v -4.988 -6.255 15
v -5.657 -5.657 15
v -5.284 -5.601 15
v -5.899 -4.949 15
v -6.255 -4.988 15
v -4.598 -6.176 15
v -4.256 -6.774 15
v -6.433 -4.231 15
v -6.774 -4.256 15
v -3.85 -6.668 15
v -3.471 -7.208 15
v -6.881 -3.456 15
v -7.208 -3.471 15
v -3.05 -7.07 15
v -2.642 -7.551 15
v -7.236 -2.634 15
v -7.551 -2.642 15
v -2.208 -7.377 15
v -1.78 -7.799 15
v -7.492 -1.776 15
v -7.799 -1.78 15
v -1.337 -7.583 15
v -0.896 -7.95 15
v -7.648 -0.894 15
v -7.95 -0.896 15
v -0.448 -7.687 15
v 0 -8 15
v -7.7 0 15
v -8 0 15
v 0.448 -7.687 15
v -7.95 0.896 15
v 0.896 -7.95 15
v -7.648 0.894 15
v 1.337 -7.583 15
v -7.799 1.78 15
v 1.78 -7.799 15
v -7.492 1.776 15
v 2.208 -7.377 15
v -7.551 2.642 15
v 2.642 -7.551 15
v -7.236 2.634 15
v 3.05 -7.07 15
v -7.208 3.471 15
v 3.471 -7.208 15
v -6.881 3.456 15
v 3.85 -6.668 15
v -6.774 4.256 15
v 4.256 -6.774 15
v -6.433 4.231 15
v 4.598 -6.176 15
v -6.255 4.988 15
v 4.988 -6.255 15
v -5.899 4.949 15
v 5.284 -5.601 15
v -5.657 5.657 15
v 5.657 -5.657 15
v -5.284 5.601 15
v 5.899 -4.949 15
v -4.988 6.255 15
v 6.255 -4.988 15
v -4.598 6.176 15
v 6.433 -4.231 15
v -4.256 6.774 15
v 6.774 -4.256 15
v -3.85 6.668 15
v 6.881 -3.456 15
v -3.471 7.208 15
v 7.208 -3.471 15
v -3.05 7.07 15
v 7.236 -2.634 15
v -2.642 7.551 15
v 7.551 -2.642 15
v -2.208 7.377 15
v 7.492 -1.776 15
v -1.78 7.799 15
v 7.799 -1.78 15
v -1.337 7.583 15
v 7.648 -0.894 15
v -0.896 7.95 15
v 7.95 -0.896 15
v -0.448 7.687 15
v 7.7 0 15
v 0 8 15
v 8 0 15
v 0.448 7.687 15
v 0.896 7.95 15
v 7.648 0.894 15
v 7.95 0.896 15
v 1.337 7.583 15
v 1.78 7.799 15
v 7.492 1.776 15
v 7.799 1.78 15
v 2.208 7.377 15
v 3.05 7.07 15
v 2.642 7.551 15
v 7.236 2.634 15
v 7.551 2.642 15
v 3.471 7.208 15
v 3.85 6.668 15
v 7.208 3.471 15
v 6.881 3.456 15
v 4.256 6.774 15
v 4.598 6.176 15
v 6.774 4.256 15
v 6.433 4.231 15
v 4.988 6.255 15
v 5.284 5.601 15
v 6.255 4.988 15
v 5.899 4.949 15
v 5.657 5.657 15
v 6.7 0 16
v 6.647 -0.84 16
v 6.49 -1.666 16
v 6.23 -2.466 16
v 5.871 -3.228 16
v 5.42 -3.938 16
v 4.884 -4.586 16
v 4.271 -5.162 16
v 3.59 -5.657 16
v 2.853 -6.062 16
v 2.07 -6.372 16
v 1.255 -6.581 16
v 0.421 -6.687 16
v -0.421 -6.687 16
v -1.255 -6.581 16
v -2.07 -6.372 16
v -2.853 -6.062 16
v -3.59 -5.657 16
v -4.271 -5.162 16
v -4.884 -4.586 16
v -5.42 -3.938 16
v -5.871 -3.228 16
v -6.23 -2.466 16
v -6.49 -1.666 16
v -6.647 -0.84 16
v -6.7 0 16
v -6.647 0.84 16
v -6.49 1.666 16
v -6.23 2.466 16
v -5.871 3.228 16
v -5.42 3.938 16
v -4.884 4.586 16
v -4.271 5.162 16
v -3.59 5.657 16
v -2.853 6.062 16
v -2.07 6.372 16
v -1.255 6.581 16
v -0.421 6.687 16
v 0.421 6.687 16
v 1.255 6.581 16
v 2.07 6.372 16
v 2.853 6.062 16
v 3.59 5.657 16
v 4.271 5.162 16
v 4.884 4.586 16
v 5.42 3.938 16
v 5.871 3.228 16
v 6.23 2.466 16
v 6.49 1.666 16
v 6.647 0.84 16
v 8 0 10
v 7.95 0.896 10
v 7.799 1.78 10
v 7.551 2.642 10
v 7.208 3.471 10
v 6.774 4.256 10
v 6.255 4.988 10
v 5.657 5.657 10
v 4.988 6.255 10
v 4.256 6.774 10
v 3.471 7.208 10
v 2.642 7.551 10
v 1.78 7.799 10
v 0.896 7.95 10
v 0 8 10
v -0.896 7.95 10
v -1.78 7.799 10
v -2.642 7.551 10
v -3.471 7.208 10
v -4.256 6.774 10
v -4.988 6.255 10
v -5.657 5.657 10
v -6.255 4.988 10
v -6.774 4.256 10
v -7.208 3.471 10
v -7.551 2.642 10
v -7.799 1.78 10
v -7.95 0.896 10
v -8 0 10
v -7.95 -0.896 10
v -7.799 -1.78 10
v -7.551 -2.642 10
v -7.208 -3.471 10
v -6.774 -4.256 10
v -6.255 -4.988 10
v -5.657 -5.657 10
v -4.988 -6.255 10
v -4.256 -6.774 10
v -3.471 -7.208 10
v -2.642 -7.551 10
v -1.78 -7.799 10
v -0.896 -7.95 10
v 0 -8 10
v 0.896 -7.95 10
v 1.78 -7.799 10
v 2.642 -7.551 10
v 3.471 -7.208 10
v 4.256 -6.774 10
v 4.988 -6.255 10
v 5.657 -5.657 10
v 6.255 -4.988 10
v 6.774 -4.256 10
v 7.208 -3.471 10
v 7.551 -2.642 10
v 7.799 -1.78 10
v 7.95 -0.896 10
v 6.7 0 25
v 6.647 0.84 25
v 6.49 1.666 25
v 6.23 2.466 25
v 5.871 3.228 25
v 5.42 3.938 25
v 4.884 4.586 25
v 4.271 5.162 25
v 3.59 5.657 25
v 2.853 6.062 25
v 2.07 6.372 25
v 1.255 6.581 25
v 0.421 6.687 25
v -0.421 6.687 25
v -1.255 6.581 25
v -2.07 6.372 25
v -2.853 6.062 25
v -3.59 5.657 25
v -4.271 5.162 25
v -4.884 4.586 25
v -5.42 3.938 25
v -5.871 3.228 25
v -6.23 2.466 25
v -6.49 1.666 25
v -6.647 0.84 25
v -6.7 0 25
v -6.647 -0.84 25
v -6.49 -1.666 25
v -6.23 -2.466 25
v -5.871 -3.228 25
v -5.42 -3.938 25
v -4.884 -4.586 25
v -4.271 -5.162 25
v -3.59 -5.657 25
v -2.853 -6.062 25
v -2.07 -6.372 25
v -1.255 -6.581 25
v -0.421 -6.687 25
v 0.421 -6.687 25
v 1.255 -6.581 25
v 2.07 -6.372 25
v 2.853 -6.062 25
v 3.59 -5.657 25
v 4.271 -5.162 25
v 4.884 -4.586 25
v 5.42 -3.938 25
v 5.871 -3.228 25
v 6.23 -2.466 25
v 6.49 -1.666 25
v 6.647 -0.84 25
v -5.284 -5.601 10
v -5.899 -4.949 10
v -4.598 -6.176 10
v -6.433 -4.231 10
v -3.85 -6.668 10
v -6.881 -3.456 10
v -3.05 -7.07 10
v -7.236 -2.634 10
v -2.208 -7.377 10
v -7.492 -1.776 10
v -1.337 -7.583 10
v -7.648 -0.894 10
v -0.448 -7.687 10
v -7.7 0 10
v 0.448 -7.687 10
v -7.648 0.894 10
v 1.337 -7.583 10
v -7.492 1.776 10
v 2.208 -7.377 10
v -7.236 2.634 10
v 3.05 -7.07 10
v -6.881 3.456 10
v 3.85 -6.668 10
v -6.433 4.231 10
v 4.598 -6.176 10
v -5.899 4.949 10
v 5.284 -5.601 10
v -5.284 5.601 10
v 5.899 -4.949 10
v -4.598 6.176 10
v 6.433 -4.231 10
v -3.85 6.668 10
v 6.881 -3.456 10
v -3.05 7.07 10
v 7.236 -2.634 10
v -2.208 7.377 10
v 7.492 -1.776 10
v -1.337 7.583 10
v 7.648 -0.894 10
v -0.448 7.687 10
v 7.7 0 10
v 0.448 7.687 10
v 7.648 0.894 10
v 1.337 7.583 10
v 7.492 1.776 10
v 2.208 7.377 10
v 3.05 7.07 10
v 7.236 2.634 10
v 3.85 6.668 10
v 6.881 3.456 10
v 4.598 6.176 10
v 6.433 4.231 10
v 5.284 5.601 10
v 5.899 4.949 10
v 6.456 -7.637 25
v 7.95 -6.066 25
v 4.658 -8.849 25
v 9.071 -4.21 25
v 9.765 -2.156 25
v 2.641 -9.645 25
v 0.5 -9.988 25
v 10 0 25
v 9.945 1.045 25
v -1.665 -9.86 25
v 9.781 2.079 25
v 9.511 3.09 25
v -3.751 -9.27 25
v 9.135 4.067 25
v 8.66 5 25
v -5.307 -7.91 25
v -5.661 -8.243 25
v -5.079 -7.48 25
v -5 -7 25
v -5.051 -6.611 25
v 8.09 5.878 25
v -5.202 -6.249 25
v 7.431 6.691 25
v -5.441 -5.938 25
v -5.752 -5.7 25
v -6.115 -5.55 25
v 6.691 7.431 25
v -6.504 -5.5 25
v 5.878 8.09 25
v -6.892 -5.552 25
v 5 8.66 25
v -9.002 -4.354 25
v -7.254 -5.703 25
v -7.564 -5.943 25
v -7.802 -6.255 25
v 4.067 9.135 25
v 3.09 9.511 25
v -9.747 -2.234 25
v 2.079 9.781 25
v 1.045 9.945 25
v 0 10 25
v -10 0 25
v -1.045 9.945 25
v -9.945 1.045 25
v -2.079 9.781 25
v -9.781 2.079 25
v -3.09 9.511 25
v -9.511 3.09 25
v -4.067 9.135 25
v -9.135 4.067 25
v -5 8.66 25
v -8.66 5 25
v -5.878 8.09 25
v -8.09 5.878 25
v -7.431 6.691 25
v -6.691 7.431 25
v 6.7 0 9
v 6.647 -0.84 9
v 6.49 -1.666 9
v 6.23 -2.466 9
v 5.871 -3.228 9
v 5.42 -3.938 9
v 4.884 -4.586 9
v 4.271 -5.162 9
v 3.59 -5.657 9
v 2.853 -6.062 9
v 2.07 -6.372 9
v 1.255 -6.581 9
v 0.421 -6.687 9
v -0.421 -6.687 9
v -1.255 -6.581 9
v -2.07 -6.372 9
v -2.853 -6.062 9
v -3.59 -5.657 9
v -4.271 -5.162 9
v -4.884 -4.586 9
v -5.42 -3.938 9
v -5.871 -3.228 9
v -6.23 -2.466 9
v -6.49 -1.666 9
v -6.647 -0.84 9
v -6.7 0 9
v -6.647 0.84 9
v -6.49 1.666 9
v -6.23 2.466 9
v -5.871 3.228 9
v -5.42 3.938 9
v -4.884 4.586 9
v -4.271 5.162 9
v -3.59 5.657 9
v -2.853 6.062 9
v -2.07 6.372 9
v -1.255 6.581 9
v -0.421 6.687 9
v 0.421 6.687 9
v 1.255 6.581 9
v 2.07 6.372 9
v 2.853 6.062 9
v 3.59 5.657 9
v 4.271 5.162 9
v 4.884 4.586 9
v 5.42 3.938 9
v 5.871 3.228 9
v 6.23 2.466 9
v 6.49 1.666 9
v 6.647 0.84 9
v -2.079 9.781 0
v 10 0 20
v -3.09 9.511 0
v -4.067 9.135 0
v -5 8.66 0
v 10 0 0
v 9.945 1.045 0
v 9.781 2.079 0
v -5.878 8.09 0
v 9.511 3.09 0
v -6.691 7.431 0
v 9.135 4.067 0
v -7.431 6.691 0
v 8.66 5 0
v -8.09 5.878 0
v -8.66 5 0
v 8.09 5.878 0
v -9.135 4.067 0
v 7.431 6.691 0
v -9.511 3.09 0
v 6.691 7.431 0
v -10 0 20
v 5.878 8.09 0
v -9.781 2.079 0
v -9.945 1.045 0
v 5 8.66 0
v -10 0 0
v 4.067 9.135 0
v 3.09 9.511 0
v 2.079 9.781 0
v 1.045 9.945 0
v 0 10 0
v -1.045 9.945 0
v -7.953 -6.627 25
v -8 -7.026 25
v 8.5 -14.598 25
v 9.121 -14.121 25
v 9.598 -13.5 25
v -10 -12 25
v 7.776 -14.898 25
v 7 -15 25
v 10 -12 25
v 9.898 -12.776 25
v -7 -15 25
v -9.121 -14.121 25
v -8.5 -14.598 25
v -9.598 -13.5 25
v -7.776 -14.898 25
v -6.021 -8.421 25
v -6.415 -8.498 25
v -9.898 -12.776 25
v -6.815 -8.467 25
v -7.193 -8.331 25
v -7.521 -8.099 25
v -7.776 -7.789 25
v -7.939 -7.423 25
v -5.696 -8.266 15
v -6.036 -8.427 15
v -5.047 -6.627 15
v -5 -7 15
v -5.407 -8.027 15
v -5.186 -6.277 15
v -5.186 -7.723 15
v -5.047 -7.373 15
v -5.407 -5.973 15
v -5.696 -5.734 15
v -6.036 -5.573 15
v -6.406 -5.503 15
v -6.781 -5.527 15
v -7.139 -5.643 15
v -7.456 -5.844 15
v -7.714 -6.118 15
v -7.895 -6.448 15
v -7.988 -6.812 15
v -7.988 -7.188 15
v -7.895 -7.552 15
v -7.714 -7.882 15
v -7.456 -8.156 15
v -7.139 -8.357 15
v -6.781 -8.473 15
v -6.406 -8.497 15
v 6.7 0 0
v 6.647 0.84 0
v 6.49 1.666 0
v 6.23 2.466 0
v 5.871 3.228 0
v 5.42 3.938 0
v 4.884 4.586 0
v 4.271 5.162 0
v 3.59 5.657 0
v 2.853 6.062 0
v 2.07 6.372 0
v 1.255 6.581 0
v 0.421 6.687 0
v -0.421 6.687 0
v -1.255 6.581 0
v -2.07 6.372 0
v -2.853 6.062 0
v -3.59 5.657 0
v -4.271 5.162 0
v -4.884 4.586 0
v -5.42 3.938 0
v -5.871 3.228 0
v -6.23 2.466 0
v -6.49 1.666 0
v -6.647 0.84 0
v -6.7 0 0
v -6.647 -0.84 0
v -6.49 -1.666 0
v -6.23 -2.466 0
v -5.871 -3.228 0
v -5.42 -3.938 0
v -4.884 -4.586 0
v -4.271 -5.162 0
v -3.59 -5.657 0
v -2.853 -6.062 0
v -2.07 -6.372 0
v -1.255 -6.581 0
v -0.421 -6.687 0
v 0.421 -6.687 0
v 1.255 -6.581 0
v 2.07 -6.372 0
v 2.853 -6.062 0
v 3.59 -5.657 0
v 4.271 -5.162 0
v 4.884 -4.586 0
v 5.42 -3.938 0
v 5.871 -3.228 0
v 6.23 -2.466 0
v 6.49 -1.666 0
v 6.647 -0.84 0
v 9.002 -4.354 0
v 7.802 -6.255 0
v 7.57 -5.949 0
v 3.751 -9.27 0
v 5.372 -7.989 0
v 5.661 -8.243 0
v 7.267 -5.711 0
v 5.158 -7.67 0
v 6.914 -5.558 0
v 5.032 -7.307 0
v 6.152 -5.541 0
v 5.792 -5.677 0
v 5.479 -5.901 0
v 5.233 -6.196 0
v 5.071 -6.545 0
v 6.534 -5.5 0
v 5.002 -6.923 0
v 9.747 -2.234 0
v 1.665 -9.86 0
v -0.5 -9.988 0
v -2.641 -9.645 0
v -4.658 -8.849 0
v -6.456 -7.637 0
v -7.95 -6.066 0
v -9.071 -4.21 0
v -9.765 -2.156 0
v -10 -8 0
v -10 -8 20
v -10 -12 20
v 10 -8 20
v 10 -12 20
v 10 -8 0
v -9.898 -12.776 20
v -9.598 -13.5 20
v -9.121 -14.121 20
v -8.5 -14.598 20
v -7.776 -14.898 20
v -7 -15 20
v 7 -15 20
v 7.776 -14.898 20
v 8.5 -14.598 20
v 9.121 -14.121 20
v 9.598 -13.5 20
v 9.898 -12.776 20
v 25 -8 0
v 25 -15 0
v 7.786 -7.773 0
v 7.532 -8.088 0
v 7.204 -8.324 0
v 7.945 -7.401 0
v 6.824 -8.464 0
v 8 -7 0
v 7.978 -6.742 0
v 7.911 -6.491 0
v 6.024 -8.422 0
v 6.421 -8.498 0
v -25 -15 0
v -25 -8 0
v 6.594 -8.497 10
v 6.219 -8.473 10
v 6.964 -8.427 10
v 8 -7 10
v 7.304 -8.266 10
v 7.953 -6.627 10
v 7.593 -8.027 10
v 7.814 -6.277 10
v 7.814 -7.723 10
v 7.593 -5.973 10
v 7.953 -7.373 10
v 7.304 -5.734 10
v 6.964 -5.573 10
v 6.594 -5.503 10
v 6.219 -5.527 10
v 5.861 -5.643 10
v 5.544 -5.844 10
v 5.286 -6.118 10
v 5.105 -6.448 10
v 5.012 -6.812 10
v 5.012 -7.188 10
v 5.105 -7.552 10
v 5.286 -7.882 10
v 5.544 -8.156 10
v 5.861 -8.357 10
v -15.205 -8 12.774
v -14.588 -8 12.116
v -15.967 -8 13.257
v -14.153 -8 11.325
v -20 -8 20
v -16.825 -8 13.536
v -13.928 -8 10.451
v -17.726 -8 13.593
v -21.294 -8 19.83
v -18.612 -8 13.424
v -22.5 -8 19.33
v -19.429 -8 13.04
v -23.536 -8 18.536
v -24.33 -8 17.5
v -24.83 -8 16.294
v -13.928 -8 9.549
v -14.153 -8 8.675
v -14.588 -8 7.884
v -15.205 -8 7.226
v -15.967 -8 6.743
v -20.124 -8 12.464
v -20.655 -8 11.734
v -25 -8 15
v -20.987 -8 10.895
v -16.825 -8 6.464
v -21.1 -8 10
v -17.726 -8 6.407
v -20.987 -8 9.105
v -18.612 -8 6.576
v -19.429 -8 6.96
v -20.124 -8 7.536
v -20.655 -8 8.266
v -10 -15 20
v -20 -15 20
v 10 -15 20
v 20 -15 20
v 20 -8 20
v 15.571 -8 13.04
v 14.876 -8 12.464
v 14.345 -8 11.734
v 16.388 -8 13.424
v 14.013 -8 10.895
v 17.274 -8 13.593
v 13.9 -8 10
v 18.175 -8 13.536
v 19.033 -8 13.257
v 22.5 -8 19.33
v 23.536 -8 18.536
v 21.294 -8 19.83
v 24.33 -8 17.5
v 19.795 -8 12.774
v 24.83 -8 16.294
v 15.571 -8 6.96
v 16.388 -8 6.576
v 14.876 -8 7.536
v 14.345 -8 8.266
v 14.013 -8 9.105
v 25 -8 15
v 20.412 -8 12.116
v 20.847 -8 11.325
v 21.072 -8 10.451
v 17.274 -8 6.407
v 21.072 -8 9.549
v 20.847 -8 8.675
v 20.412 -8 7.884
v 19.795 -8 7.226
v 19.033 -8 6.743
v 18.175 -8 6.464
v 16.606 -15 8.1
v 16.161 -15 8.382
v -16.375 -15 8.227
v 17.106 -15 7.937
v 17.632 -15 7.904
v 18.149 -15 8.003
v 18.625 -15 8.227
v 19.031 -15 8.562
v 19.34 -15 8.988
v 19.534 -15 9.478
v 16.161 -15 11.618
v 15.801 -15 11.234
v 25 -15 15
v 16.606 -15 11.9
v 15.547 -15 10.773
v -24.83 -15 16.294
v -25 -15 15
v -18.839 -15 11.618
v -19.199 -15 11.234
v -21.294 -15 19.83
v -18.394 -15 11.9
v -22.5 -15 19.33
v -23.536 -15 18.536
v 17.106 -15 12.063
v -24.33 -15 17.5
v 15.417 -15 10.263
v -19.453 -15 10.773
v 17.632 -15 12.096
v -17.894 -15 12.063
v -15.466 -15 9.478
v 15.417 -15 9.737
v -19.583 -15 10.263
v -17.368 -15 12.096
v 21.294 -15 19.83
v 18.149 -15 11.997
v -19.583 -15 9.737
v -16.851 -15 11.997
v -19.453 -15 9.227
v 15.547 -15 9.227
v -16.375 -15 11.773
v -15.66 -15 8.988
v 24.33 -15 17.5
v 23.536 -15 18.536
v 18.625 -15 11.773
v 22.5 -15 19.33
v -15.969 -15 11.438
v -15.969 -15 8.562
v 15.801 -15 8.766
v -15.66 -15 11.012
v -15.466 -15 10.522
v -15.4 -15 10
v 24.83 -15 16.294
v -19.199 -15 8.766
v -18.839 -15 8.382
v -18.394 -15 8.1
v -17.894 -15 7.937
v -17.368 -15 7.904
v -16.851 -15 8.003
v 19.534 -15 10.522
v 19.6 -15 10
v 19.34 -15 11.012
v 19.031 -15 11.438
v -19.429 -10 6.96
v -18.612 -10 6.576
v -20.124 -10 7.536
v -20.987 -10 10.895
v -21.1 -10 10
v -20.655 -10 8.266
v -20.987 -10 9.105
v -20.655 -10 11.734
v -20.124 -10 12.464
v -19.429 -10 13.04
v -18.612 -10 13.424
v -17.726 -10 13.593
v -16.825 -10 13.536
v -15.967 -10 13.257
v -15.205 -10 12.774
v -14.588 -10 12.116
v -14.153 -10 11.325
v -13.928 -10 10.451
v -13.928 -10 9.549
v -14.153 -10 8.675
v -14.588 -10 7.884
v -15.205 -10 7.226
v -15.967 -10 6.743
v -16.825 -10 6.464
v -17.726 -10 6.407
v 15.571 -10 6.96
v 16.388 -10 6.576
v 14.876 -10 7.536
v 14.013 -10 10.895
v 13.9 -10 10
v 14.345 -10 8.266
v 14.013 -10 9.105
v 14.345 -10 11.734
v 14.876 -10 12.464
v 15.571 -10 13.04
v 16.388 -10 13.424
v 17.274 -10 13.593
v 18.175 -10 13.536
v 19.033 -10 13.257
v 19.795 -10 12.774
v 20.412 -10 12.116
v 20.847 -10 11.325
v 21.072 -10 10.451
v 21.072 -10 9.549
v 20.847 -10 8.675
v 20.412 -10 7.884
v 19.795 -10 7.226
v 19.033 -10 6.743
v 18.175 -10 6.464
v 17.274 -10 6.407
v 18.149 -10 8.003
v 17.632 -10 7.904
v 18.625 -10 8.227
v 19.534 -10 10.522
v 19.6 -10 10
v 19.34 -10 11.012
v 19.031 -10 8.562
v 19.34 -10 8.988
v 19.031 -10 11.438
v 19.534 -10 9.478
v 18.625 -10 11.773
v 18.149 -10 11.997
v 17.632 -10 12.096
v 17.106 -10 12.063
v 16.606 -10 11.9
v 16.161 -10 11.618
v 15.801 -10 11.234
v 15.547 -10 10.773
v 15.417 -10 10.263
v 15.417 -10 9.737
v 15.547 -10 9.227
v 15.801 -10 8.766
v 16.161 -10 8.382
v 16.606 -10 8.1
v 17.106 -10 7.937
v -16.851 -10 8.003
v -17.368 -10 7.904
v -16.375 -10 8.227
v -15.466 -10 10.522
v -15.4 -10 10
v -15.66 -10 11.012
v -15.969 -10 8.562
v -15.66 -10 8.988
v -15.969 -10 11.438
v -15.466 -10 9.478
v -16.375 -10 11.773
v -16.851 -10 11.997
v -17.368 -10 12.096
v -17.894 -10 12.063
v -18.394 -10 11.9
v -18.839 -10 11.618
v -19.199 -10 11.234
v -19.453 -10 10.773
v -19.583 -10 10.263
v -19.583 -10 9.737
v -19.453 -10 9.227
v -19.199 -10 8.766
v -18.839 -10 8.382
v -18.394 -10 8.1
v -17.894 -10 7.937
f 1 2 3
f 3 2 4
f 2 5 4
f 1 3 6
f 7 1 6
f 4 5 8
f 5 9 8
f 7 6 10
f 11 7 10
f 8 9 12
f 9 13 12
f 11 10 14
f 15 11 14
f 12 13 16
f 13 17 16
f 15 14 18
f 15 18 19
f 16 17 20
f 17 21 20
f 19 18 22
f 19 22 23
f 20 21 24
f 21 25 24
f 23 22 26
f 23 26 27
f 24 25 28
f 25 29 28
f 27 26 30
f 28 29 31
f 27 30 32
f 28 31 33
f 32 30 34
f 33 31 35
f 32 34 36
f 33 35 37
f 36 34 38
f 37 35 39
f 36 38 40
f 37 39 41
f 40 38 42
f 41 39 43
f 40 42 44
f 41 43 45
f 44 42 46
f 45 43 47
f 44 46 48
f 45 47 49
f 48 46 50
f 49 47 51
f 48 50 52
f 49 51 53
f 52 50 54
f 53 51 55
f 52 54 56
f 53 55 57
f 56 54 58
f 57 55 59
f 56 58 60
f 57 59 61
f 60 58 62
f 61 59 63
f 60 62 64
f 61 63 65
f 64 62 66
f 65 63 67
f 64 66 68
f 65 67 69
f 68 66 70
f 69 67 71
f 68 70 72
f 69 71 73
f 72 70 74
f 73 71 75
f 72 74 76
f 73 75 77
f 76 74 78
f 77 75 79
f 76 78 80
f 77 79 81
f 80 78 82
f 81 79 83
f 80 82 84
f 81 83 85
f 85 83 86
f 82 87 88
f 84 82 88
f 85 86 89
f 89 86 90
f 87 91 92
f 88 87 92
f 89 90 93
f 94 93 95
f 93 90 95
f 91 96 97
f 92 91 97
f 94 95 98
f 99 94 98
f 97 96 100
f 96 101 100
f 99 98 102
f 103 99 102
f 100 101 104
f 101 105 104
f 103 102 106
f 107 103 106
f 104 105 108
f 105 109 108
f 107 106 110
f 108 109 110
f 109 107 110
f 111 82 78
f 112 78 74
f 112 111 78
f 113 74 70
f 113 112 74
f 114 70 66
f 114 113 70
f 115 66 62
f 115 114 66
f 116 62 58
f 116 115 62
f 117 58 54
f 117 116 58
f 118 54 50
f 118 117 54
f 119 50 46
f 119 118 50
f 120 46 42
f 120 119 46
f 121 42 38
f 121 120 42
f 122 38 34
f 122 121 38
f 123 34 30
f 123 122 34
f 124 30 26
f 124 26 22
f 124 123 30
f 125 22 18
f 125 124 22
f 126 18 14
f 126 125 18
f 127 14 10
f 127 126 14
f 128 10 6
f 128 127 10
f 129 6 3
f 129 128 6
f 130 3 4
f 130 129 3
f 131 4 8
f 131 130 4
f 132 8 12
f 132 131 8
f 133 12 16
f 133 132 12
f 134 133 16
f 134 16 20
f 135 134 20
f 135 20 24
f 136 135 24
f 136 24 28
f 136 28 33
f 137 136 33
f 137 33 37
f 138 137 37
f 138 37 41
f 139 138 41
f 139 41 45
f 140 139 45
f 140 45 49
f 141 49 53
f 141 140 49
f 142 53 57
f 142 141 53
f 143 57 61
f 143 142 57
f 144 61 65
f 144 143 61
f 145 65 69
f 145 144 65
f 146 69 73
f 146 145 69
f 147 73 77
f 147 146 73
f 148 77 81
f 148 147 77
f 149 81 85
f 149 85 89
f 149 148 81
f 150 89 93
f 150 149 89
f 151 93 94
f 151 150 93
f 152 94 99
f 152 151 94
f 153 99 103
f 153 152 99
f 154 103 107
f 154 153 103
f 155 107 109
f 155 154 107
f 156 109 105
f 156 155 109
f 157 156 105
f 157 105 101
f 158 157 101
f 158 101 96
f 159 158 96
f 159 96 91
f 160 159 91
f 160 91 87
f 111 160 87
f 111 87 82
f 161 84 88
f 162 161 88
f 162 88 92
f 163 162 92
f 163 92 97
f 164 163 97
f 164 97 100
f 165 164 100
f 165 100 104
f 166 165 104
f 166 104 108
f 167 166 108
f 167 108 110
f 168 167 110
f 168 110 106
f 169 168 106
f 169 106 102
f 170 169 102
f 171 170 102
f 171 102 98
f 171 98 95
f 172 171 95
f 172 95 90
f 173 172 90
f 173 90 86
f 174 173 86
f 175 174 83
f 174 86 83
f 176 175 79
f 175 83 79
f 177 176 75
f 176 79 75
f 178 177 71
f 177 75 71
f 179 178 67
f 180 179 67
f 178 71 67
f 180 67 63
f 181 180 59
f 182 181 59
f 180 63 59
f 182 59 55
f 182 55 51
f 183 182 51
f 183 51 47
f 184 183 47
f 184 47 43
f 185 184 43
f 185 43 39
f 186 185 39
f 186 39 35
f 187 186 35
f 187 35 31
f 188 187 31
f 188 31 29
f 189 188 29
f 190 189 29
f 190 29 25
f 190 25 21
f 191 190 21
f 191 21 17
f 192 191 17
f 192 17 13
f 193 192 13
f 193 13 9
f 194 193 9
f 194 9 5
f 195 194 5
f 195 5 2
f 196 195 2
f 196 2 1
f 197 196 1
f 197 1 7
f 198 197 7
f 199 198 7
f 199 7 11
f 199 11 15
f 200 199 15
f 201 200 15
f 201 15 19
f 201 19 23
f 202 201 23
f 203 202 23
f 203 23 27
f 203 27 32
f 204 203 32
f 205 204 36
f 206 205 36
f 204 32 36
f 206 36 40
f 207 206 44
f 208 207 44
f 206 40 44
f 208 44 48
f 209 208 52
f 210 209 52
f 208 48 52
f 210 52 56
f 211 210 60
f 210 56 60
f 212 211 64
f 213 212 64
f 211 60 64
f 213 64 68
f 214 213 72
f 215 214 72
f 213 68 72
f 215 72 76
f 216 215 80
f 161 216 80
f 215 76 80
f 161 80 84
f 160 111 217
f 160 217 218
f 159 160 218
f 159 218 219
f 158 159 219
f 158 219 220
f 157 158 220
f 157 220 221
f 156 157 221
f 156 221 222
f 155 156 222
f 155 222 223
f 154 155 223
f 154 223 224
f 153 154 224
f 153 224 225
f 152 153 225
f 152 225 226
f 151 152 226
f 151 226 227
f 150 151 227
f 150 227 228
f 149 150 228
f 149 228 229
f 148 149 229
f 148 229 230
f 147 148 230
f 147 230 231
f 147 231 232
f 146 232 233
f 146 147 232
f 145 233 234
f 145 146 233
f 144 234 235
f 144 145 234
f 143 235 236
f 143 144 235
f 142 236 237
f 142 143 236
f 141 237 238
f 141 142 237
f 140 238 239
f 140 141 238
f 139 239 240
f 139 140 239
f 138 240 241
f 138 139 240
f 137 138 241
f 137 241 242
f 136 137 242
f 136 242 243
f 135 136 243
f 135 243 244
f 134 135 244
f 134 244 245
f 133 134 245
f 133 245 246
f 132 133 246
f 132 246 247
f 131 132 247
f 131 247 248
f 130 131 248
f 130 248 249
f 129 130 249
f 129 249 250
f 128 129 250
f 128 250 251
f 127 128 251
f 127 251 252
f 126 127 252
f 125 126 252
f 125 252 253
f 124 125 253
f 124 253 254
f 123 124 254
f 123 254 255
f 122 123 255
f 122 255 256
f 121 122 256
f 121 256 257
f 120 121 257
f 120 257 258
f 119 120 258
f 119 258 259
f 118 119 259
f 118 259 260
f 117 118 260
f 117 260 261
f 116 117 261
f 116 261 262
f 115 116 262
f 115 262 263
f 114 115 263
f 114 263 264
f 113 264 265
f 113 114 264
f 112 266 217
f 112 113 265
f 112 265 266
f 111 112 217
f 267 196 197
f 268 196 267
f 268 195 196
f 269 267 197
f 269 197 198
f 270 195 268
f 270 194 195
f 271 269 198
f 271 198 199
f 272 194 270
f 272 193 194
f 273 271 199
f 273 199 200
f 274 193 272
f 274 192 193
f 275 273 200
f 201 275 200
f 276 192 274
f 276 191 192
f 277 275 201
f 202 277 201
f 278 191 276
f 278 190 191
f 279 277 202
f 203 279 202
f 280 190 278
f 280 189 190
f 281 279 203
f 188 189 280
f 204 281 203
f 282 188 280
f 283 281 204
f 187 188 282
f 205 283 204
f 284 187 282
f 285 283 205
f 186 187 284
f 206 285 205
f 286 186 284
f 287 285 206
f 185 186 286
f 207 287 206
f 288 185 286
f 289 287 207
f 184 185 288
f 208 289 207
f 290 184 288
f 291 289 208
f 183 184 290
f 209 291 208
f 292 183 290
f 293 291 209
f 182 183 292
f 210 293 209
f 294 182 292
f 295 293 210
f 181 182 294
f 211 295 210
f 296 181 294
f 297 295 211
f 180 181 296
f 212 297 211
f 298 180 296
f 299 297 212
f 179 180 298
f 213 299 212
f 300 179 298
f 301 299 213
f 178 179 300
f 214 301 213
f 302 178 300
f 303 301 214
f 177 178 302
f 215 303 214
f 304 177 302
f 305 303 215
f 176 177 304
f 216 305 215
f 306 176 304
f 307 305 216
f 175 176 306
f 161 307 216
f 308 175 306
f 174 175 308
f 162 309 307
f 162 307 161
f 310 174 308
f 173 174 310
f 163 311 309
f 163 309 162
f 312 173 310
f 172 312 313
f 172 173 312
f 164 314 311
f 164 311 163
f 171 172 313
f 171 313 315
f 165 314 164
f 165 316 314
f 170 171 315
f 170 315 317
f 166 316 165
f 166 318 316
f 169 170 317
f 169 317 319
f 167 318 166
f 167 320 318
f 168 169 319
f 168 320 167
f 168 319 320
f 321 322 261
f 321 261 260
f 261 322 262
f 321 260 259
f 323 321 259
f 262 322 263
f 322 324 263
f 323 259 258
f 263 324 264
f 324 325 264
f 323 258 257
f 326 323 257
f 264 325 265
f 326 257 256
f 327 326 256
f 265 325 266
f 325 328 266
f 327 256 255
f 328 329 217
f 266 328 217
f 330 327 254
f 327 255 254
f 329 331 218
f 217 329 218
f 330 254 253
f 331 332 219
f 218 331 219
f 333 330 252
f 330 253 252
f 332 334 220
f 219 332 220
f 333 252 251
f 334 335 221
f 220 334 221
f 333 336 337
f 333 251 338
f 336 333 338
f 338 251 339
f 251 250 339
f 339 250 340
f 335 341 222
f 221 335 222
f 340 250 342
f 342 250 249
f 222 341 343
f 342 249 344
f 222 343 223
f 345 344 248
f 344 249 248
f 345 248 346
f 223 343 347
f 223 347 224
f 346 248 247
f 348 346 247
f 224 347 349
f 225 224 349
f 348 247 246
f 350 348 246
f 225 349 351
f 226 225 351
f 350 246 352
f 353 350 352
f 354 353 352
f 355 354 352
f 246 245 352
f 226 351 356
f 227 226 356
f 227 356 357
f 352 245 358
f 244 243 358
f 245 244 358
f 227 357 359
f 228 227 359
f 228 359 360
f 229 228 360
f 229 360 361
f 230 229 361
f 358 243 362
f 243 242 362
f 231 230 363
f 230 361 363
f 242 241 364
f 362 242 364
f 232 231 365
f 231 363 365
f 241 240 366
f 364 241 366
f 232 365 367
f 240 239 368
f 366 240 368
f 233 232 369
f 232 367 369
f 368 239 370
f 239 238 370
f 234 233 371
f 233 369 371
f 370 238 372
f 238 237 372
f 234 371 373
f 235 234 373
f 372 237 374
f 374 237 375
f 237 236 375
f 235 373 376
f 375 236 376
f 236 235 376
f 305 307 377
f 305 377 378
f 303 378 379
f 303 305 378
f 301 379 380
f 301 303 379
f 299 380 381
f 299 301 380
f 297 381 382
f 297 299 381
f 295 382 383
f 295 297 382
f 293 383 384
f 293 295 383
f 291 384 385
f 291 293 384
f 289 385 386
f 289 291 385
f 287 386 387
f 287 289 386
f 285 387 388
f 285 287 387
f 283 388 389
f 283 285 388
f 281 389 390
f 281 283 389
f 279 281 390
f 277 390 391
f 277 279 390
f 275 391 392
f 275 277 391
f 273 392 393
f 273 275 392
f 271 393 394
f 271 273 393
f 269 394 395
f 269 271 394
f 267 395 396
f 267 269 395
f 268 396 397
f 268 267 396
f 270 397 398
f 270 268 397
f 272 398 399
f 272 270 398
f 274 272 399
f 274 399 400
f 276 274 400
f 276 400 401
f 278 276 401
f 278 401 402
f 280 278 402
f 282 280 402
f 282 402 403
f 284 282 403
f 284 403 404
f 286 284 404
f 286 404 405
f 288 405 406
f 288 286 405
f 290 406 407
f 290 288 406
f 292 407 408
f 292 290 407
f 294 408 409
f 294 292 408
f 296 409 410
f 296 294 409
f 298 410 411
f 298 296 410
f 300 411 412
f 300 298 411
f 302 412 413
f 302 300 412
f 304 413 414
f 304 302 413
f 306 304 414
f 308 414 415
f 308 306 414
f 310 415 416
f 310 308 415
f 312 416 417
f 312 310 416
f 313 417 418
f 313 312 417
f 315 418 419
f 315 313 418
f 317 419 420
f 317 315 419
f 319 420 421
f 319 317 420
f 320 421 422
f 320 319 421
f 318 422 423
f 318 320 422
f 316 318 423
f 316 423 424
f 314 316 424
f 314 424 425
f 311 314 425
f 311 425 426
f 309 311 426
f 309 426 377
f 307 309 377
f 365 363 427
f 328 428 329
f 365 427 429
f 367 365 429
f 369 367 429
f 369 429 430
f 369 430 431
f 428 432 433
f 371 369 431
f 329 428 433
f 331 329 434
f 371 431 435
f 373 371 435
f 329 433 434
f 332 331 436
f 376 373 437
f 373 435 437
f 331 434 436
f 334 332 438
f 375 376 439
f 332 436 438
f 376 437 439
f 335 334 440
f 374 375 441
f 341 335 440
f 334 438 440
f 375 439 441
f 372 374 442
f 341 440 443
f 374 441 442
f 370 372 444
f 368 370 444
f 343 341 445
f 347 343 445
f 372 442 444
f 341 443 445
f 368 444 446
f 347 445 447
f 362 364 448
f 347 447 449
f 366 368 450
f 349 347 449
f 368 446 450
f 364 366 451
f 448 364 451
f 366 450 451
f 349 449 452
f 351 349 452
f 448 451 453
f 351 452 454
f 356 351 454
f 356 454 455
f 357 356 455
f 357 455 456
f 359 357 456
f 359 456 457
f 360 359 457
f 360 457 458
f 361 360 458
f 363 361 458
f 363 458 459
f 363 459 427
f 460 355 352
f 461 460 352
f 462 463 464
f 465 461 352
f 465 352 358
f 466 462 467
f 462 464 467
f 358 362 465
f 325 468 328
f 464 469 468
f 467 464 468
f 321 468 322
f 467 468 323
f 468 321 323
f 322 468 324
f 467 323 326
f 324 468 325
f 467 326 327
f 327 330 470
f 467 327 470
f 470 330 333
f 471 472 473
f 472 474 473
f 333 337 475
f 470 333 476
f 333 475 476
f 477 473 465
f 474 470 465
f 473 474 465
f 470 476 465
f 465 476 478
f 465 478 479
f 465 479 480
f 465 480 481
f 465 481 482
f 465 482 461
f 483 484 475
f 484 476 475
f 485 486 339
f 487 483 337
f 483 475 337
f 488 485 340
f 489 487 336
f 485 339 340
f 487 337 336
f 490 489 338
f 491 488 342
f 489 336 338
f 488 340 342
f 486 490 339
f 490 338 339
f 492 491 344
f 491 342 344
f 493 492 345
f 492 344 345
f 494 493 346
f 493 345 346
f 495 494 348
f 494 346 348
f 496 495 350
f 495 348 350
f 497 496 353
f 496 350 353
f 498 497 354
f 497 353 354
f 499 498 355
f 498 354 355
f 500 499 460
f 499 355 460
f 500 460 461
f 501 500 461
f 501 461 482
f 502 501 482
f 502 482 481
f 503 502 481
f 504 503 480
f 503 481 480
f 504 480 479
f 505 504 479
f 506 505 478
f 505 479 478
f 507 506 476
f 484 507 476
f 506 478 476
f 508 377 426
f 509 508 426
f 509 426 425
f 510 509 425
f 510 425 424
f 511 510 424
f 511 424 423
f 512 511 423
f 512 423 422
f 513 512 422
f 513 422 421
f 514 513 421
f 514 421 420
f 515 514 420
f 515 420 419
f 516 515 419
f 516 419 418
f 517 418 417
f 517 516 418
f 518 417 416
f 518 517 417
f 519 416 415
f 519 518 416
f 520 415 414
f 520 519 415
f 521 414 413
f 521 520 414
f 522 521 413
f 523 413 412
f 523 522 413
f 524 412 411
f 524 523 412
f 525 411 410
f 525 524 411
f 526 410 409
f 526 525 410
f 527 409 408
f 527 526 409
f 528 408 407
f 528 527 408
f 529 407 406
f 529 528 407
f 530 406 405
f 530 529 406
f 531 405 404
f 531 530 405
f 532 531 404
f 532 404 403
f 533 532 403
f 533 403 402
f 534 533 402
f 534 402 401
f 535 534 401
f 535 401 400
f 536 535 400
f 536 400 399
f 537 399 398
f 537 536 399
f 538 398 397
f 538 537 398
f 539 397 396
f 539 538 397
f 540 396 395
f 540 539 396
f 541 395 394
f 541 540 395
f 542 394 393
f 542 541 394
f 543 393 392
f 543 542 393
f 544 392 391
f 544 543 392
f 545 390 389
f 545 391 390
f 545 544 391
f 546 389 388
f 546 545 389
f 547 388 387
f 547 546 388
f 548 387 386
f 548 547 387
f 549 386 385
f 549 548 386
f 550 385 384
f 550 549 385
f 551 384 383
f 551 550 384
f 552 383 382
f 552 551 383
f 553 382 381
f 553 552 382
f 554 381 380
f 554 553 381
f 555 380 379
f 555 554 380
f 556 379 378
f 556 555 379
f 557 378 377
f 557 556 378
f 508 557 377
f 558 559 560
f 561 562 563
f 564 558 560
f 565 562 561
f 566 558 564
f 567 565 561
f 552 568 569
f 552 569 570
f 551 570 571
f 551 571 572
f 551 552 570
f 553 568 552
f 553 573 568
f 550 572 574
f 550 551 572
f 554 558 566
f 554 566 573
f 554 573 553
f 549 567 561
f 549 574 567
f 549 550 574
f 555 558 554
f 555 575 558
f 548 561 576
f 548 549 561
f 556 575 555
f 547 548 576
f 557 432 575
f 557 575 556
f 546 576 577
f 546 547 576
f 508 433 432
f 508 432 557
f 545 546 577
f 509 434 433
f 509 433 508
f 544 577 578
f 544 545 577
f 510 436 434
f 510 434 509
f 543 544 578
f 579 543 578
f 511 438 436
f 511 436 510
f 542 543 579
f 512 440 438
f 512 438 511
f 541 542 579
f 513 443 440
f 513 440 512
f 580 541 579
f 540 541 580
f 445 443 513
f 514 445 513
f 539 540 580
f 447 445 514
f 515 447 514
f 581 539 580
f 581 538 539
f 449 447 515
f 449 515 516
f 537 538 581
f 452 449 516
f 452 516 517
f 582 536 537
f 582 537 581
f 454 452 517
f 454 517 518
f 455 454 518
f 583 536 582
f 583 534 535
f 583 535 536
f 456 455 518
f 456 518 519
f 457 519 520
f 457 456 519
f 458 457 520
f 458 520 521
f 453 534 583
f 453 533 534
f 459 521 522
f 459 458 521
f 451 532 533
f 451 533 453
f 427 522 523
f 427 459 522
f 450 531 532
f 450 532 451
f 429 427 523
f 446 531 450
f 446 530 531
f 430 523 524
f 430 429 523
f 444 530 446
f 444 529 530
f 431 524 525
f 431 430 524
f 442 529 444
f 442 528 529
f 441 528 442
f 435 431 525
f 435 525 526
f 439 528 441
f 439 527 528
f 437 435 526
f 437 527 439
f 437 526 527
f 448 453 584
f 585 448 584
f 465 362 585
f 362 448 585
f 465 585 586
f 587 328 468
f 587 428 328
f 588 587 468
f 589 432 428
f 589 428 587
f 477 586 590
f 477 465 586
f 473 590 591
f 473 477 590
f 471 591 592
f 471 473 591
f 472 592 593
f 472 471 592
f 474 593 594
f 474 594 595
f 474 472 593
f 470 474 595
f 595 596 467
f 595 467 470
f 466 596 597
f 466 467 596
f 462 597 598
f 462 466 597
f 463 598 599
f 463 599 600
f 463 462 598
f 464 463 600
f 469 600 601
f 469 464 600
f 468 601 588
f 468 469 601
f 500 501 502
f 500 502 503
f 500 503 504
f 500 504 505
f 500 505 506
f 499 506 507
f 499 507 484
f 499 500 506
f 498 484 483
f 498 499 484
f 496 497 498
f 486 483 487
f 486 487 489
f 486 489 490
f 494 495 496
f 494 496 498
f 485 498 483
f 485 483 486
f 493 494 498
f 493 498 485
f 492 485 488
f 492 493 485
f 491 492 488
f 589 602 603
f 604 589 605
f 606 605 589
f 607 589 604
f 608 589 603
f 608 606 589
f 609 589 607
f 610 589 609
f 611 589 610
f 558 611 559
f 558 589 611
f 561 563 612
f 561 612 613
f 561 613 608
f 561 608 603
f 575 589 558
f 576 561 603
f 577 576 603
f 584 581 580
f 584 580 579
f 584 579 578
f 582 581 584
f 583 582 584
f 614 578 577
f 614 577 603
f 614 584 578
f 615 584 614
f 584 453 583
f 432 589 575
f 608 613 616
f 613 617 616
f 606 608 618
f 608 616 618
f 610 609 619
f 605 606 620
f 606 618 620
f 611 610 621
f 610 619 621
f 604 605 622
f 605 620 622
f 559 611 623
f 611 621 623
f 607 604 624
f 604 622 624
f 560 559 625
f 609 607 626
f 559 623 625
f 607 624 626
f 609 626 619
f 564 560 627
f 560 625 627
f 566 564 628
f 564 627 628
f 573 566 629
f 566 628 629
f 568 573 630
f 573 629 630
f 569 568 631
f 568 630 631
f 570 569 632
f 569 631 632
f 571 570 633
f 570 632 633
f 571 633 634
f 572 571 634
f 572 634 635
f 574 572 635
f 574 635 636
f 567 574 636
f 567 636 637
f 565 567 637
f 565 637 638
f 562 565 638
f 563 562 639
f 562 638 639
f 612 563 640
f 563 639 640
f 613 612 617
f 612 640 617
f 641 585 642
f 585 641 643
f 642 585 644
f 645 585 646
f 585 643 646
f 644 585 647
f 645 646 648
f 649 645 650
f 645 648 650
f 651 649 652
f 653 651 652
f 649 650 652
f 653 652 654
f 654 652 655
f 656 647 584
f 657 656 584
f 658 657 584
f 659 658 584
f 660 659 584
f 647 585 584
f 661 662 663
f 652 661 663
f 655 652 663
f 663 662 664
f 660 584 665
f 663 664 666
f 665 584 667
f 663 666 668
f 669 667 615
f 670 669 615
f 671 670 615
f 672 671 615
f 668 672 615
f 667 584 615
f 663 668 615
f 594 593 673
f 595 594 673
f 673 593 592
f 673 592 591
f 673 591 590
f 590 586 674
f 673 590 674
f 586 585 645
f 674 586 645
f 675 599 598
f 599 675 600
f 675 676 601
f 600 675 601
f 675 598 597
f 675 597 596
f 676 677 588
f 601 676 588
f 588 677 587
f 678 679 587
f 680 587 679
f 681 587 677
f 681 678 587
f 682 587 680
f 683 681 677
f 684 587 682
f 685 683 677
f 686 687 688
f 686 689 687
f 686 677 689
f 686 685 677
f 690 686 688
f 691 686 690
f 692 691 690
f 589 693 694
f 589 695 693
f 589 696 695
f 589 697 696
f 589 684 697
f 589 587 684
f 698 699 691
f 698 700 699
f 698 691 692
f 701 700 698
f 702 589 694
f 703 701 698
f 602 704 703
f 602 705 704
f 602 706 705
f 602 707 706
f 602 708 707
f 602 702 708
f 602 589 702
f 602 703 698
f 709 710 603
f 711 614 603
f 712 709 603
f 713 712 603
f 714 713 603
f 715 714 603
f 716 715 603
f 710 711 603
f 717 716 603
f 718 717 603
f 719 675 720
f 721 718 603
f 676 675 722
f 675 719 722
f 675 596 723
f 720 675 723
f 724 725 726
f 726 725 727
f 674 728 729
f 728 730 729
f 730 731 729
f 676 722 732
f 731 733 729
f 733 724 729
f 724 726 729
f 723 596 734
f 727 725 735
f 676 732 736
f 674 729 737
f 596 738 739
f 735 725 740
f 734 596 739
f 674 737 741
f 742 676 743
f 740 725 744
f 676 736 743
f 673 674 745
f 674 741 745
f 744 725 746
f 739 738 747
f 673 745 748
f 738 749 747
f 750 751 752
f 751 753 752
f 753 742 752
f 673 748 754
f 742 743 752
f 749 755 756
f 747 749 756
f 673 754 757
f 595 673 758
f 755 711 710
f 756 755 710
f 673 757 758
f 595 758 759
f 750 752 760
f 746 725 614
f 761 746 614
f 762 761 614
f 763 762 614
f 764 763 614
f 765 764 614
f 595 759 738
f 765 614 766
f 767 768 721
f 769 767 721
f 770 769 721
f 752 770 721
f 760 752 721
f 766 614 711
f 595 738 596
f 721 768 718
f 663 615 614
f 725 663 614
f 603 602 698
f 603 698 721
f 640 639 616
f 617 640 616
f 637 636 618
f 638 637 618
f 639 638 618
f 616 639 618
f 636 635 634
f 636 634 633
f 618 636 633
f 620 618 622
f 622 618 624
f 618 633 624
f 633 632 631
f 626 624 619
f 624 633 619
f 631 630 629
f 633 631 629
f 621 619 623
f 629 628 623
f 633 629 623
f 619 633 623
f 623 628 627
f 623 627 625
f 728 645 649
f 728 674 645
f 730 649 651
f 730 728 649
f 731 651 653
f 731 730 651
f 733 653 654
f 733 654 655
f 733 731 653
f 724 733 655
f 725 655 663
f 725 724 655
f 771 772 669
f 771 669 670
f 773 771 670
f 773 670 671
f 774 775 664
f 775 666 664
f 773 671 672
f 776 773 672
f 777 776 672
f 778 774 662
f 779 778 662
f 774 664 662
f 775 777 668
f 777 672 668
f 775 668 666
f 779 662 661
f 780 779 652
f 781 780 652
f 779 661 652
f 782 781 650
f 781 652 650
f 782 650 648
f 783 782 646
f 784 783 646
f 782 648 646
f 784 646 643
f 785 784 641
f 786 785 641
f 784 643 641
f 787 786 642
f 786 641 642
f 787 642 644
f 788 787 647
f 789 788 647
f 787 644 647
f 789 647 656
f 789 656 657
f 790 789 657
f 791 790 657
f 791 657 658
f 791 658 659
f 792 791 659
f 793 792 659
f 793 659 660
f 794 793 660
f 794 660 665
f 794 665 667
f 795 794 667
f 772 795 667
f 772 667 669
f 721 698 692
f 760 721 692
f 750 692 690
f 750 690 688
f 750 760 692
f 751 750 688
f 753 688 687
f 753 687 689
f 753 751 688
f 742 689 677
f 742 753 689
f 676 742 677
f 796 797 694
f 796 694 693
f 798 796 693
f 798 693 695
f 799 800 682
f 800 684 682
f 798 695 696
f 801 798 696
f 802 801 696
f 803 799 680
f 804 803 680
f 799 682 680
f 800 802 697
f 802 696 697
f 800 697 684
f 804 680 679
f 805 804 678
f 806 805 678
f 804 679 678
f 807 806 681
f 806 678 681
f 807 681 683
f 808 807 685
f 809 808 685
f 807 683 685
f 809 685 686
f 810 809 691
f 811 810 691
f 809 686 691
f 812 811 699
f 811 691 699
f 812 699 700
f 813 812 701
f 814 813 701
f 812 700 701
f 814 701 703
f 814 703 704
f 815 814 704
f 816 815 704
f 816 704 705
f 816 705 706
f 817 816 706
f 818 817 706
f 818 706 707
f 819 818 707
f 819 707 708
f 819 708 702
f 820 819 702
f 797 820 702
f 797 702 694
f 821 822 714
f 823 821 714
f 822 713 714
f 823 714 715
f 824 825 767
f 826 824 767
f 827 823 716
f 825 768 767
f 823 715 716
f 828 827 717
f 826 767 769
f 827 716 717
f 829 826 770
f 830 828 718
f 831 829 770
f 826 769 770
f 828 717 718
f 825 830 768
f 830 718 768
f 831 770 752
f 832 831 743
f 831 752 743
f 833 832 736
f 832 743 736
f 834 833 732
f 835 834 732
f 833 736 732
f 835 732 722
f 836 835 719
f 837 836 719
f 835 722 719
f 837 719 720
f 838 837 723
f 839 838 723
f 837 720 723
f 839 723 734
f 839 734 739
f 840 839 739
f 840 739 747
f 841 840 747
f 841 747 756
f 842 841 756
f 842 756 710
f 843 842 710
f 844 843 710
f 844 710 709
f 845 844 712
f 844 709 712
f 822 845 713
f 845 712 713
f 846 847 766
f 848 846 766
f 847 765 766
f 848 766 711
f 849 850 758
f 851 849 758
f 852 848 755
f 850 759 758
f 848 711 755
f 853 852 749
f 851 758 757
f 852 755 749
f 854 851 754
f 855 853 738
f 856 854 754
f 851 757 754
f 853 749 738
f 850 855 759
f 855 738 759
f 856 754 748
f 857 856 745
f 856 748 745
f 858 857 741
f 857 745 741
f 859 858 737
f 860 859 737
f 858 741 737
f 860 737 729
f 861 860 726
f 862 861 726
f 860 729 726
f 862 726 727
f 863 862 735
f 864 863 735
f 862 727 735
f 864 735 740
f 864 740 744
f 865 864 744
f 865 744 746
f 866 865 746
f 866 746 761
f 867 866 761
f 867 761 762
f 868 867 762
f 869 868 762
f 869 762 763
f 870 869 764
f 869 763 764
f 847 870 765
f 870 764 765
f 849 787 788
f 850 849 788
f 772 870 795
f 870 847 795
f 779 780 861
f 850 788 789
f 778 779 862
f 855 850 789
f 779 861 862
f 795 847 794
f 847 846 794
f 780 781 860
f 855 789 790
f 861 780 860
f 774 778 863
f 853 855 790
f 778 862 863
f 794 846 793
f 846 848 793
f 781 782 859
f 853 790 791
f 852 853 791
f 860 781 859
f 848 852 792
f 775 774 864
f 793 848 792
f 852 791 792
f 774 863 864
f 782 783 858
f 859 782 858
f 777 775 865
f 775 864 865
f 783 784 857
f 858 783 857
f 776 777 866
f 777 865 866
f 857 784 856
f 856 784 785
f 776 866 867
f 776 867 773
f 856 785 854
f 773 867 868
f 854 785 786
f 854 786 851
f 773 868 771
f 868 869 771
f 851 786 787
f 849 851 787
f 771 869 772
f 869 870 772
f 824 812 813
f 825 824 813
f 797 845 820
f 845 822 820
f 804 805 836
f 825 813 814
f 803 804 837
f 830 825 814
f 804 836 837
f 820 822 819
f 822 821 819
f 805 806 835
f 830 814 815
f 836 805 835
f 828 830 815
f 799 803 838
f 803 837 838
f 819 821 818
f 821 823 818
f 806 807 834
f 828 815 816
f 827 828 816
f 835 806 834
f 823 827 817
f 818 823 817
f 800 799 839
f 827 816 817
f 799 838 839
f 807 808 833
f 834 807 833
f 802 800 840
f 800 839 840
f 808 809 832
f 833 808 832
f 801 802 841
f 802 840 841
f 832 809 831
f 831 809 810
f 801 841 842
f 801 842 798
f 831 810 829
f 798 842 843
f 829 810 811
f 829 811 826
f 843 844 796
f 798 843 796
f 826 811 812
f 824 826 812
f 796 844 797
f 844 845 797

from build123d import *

# Parameters (mm, degrees)
CYLINDER002_R     = 1.5
CYLINDER002_DEPTH = 10
CYLINDER001_R     = 1.5
CYLINDER001_DEPTH = 10
PAD002_DEPTH      = 5
PAD001_DEPTH      = 20
SKETCH008_R       = 2.1
POCKET002_DEPTH   = 7
SKETCH009_R       = 3.6
POCKET003_DEPTH   = 2
CYLINDER_R        = 8
CYLINDER_DEPTH    = 5
SKETCH_R          = 10
SKETCH_R_2        = 6.7
PAD_DEPTH         = 25
FILLET_R          = 5
FILLET001_R       = 3
CHAMFER_SIZE      = 1
CHAMFER001_SIZE   = 1


with BuildPart() as zylinder002:
    # Cylinder002 → Cylinder002 (new body)
    with BuildSketch(Plane(origin=(6.5, -7, 0), x_dir=(1, 0, 0), z_dir=(0, 0, 1))):
        Circle(CYLINDER002_R)
    extrude(amount=CYLINDER002_DEPTH)


with BuildPart() as zylinder001:
    # Cylinder001 → Cylinder001 (new body)
    with BuildSketch(Plane(origin=(-6.5, -7, 15), x_dir=(1, 0, 0), z_dir=(0, 0, 1))):
        Circle(CYLINDER001_R)
    extrude(amount=CYLINDER001_DEPTH)


with BuildPart() as pad002:
    # Sketch011 → Pad002 (new body)
    with BuildSketch(Plane.XY.offset(20)):
        with BuildLine():
            Line((-10, 0), (-10, -15))
            Line((10, -15), (-10, -15))
            Line((10, 0), (10, -15))
            ThreePointArc((-10, 0), (0, -10), (10, 0))
        make_face()
    extrude(amount=PAD002_DEPTH)


with BuildPart() as pocket003:
    # Sketch003 → Pad001 (new body)
    with BuildSketch(Plane.XY):
        with BuildLine():
            ThreePointArc((-10, 0), (0, -10), (10, 0))
            Line((10, 0), (10, -8))
            Line((10, -8), (25, -8))
            Line((25, -8), (25, -15))
            Line((-25, -15), (25, -15))
            Line((-25, -8), (-25, -15))
            Line((-10, -8), (-25, -8))
            Line((-10, 0), (-10, -8))
        make_face()
    extrude(amount=PAD001_DEPTH)

    # Sketch008 → Pocket002 (cut)
    with BuildSketch(Plane.XZ.offset(15)):
        with Locations((-17.5, 10)):
            Circle(SKETCH008_R)
        with Locations((17.5, 10)):
            Circle(SKETCH008_R)
    extrude(amount=-POCKET002_DEPTH, mode=Mode.SUBTRACT)

    # Sketch009 → Pocket003 (cut)
    with BuildSketch(Plane(origin=(0, -8, 0), x_dir=(-1, 0, 0), z_dir=(0, 1, 0))):
        with Locations((-17.5, 10)):
            Circle(SKETCH009_R)
        with Locations((17.5, 10)):
            Circle(SKETCH009_R)
    extrude(amount=-POCKET003_DEPTH, mode=Mode.SUBTRACT)


with BuildPart() as zylinder:
    # Cylinder → Cylinder (new body)
    with BuildSketch(Plane.XY.offset(10)):
        Circle(CYLINDER_R)
    extrude(amount=CYLINDER_DEPTH)


with BuildPart() as chamfer001:
    # Sketch → Pad (new body)
    with BuildSketch(Plane.XY):
        Circle(SKETCH_R)
        Circle(SKETCH_R_2, mode=Mode.SUBTRACT)
    extrude(amount=PAD_DEPTH)

    # Cut: cut Zylinder
    add(zylinder.part, mode=Mode.SUBTRACT)

    # Fusion: union Pad002, Pocket003
    add(pad002.part)
    add(pocket003.part)

    # Cut001: cut Zylinder001
    add(zylinder001.part, mode=Mode.SUBTRACT)

    # Cut002: cut Zylinder002
    add(zylinder002.part, mode=Mode.SUBTRACT)

    # Fillet
    fillet_edges = [chamfer001.edges().sort_by_distance(p)[0] for p in [
        (25, -11.5, 20),
        (-25, -11.5, 20),
    ]]
    fillet(fillet_edges, radius=FILLET_R)

    # Fillet001
    fillet001_edges = [chamfer001.edges().sort_by_distance(p)[0] for p in [
        (10, -15, 22.5),
        (-10, -15, 22.5),
    ]]
    fillet(fillet001_edges, radius=FILLET001_R)

    # Chamfer
    chamfer_edges = [chamfer001.edges().sort_by_distance(p)[0] for p in [
        (-6.7, 0, 10),
    ]]
    chamfer(chamfer_edges, length=CHAMFER_SIZE)

    # Chamfer001
    chamfer001_edges = [chamfer001.edges().sort_by_distance(p)[0] for p in [
        (-6.7, 0, 15),
    ]]
    chamfer(chamfer001_edges, length=CHAMFER001_SIZE)


solid = chamfer001.part
